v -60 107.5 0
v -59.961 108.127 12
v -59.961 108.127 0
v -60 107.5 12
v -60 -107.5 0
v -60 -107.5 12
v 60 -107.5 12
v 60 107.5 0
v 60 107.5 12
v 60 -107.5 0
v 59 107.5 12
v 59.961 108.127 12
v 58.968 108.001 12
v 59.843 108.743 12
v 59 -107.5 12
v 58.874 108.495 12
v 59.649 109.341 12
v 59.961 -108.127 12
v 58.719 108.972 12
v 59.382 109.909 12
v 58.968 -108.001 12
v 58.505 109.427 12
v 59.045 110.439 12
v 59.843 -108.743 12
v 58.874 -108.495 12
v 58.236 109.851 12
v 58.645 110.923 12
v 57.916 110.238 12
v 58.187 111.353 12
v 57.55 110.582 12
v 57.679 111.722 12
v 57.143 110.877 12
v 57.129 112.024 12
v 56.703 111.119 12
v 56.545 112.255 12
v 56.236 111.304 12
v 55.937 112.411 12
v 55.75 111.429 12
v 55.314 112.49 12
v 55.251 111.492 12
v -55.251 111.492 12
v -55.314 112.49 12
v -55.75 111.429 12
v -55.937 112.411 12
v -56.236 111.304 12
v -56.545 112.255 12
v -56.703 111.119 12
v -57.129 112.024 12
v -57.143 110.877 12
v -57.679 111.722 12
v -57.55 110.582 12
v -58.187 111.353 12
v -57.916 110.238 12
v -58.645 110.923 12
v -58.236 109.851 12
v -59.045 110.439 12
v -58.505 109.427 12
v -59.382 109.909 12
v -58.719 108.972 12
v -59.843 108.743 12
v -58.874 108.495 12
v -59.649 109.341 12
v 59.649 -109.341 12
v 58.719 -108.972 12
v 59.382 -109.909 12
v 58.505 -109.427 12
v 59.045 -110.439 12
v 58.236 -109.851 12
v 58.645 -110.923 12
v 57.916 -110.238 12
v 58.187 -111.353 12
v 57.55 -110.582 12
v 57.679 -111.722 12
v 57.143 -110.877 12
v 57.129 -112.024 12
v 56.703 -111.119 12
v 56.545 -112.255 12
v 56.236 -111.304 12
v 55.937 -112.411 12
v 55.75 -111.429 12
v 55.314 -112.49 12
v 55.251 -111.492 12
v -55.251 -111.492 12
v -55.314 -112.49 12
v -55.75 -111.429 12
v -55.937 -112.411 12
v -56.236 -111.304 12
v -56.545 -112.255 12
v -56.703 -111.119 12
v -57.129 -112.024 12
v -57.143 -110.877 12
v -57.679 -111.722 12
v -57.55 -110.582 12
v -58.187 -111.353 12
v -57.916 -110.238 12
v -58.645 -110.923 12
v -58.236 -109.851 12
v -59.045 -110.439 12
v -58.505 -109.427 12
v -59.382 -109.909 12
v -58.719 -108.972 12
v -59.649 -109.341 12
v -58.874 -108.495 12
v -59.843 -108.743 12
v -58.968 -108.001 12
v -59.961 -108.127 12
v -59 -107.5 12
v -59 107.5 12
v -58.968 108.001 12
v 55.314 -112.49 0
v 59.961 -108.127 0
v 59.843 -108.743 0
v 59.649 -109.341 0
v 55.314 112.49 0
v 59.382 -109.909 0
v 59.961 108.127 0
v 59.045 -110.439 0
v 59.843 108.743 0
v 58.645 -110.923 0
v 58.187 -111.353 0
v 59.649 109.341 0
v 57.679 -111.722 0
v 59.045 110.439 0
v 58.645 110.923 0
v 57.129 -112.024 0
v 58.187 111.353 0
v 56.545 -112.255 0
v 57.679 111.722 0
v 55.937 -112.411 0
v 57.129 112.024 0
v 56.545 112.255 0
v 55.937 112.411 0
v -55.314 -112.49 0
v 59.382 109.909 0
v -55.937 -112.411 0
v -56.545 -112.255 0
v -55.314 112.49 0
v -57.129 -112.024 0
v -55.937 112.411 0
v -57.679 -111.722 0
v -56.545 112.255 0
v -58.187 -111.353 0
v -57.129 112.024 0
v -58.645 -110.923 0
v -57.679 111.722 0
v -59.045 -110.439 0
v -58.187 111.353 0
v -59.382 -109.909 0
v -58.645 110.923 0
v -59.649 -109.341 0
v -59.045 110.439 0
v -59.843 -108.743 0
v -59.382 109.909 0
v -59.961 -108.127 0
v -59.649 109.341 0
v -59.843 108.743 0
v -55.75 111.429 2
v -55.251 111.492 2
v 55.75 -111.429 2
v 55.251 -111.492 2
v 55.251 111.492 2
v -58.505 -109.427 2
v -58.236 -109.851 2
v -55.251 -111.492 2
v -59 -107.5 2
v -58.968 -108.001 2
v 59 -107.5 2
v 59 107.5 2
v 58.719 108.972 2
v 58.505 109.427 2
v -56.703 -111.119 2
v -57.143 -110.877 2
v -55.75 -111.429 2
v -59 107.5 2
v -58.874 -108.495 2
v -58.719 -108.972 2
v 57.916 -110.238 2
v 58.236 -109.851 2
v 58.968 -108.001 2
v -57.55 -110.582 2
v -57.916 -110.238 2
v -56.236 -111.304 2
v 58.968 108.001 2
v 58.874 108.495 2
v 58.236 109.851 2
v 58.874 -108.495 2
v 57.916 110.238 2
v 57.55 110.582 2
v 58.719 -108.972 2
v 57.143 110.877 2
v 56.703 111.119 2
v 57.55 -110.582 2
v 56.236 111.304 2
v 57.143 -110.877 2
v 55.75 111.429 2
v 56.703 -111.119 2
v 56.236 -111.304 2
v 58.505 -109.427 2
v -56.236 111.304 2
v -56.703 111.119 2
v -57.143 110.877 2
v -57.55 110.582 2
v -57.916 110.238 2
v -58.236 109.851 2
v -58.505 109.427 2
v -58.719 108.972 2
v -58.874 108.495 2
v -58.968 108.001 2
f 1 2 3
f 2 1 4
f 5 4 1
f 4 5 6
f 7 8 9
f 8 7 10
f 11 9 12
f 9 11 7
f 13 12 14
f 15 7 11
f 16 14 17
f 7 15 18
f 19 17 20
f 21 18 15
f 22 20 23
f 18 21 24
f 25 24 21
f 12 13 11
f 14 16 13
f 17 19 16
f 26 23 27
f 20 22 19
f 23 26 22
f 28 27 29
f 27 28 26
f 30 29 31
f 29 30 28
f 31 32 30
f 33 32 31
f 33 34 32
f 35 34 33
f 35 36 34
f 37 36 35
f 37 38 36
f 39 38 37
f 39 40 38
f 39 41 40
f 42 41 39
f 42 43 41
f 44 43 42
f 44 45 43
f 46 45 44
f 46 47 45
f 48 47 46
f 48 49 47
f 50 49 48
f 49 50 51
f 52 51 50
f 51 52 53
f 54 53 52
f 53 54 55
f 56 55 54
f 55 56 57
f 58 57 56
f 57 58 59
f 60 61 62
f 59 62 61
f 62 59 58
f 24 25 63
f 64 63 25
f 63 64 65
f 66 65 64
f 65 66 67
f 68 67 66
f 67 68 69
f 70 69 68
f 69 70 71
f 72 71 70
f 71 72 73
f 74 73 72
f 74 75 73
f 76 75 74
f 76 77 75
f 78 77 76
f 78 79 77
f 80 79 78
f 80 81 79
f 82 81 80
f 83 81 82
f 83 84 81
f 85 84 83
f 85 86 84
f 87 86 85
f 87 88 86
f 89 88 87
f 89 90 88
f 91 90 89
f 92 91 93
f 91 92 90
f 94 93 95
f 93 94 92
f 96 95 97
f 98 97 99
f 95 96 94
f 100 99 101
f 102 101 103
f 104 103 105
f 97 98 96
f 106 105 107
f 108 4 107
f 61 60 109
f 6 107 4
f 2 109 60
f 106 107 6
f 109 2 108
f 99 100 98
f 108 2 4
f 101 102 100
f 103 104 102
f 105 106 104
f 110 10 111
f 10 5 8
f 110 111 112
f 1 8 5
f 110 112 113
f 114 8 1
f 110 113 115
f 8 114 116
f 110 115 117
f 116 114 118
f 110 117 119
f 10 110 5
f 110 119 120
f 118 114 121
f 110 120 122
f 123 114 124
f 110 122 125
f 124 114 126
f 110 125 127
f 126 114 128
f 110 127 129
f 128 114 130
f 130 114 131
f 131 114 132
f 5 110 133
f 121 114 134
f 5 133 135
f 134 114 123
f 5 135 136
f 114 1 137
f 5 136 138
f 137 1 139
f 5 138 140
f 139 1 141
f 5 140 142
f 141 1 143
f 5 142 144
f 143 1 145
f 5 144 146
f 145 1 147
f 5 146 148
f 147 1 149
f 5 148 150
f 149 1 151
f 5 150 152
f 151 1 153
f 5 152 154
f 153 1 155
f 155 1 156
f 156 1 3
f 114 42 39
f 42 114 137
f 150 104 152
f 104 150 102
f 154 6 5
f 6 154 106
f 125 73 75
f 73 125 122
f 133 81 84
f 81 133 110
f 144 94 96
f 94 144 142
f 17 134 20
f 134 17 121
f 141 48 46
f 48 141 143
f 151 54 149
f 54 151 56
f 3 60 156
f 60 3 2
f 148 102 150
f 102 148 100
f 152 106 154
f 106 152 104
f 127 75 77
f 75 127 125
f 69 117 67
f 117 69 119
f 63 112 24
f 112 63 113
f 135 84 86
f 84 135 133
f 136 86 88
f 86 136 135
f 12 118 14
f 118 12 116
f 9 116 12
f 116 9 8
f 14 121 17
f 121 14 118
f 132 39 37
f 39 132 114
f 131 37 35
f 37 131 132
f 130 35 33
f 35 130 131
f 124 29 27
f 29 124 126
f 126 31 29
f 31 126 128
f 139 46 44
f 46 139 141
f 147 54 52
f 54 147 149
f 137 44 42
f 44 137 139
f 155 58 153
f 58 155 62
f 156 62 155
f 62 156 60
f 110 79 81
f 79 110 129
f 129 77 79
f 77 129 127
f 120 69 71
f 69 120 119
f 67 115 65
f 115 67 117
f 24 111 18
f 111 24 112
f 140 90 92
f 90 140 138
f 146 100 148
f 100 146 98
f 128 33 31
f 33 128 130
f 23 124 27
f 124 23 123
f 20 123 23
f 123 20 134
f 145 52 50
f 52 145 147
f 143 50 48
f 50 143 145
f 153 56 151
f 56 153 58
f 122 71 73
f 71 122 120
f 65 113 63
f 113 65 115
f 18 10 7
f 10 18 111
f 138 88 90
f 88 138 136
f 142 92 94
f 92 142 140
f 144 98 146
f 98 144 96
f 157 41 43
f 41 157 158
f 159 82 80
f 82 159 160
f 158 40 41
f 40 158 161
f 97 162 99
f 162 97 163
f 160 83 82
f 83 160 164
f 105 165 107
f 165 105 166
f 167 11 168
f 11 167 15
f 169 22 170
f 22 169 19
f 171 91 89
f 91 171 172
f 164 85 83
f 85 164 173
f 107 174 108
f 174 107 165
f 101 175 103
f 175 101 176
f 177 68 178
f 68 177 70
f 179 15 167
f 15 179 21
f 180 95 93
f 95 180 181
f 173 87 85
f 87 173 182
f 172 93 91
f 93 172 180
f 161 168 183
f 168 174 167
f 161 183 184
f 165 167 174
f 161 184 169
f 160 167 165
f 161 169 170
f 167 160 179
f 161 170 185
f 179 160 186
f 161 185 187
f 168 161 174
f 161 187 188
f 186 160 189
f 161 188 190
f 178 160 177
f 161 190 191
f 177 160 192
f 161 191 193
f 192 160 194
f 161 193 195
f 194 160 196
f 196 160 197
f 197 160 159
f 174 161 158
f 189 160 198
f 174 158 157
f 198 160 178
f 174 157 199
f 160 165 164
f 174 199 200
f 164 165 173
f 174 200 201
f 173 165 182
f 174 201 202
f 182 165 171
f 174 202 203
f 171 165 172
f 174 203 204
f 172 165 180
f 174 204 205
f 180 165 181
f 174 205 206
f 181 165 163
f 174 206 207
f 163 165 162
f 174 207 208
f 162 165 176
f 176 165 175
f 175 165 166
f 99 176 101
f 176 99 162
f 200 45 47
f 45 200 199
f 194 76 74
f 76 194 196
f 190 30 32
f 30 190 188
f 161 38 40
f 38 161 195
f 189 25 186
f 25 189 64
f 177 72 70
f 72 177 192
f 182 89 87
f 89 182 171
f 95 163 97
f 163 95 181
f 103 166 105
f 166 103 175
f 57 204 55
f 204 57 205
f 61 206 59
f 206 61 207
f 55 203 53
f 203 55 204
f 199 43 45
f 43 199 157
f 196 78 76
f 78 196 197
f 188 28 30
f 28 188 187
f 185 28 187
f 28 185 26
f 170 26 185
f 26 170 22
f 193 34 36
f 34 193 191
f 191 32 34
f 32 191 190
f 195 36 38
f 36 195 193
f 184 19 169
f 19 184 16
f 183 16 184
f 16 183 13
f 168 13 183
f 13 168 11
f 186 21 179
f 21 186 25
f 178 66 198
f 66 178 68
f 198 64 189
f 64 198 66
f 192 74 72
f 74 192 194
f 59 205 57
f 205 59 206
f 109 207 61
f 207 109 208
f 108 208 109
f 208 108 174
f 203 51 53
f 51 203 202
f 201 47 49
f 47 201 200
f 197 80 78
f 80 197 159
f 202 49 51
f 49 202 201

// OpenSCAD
$fn = 50;


difference() {
	union() {
		hull() {
			translate(v = [-55.0000000000, 107.5000000000, 0]) {
				cylinder(h = 12, r = 5);
			}
			translate(v = [55.0000000000, 107.5000000000, 0]) {
				cylinder(h = 12, r = 5);
			}
			translate(v = [-55.0000000000, -107.5000000000, 0]) {
				cylinder(h = 12, r = 5);
			}
			translate(v = [55.0000000000, -107.5000000000, 0]) {
				cylinder(h = 12, r = 5);
			}
		}
	}
	union() {
		translate(v = [0, 0, 2]) {
			hull() {
				translate(v = [-55.0000000000, 107.5000000000, 0]) {
					cylinder(h = 10, r = 4);
				}
				translate(v = [55.0000000000, 107.5000000000, 0]) {
					cylinder(h = 10, r = 4);
				}
				translate(v = [-55.0000000000, -107.5000000000, 0]) {
					cylinder(h = 10, r = 4);
				}
				translate(v = [55.0000000000, -107.5000000000, 0]) {
					cylinder(h = 10, r = 4);
				}
			}
		}
	}
}
